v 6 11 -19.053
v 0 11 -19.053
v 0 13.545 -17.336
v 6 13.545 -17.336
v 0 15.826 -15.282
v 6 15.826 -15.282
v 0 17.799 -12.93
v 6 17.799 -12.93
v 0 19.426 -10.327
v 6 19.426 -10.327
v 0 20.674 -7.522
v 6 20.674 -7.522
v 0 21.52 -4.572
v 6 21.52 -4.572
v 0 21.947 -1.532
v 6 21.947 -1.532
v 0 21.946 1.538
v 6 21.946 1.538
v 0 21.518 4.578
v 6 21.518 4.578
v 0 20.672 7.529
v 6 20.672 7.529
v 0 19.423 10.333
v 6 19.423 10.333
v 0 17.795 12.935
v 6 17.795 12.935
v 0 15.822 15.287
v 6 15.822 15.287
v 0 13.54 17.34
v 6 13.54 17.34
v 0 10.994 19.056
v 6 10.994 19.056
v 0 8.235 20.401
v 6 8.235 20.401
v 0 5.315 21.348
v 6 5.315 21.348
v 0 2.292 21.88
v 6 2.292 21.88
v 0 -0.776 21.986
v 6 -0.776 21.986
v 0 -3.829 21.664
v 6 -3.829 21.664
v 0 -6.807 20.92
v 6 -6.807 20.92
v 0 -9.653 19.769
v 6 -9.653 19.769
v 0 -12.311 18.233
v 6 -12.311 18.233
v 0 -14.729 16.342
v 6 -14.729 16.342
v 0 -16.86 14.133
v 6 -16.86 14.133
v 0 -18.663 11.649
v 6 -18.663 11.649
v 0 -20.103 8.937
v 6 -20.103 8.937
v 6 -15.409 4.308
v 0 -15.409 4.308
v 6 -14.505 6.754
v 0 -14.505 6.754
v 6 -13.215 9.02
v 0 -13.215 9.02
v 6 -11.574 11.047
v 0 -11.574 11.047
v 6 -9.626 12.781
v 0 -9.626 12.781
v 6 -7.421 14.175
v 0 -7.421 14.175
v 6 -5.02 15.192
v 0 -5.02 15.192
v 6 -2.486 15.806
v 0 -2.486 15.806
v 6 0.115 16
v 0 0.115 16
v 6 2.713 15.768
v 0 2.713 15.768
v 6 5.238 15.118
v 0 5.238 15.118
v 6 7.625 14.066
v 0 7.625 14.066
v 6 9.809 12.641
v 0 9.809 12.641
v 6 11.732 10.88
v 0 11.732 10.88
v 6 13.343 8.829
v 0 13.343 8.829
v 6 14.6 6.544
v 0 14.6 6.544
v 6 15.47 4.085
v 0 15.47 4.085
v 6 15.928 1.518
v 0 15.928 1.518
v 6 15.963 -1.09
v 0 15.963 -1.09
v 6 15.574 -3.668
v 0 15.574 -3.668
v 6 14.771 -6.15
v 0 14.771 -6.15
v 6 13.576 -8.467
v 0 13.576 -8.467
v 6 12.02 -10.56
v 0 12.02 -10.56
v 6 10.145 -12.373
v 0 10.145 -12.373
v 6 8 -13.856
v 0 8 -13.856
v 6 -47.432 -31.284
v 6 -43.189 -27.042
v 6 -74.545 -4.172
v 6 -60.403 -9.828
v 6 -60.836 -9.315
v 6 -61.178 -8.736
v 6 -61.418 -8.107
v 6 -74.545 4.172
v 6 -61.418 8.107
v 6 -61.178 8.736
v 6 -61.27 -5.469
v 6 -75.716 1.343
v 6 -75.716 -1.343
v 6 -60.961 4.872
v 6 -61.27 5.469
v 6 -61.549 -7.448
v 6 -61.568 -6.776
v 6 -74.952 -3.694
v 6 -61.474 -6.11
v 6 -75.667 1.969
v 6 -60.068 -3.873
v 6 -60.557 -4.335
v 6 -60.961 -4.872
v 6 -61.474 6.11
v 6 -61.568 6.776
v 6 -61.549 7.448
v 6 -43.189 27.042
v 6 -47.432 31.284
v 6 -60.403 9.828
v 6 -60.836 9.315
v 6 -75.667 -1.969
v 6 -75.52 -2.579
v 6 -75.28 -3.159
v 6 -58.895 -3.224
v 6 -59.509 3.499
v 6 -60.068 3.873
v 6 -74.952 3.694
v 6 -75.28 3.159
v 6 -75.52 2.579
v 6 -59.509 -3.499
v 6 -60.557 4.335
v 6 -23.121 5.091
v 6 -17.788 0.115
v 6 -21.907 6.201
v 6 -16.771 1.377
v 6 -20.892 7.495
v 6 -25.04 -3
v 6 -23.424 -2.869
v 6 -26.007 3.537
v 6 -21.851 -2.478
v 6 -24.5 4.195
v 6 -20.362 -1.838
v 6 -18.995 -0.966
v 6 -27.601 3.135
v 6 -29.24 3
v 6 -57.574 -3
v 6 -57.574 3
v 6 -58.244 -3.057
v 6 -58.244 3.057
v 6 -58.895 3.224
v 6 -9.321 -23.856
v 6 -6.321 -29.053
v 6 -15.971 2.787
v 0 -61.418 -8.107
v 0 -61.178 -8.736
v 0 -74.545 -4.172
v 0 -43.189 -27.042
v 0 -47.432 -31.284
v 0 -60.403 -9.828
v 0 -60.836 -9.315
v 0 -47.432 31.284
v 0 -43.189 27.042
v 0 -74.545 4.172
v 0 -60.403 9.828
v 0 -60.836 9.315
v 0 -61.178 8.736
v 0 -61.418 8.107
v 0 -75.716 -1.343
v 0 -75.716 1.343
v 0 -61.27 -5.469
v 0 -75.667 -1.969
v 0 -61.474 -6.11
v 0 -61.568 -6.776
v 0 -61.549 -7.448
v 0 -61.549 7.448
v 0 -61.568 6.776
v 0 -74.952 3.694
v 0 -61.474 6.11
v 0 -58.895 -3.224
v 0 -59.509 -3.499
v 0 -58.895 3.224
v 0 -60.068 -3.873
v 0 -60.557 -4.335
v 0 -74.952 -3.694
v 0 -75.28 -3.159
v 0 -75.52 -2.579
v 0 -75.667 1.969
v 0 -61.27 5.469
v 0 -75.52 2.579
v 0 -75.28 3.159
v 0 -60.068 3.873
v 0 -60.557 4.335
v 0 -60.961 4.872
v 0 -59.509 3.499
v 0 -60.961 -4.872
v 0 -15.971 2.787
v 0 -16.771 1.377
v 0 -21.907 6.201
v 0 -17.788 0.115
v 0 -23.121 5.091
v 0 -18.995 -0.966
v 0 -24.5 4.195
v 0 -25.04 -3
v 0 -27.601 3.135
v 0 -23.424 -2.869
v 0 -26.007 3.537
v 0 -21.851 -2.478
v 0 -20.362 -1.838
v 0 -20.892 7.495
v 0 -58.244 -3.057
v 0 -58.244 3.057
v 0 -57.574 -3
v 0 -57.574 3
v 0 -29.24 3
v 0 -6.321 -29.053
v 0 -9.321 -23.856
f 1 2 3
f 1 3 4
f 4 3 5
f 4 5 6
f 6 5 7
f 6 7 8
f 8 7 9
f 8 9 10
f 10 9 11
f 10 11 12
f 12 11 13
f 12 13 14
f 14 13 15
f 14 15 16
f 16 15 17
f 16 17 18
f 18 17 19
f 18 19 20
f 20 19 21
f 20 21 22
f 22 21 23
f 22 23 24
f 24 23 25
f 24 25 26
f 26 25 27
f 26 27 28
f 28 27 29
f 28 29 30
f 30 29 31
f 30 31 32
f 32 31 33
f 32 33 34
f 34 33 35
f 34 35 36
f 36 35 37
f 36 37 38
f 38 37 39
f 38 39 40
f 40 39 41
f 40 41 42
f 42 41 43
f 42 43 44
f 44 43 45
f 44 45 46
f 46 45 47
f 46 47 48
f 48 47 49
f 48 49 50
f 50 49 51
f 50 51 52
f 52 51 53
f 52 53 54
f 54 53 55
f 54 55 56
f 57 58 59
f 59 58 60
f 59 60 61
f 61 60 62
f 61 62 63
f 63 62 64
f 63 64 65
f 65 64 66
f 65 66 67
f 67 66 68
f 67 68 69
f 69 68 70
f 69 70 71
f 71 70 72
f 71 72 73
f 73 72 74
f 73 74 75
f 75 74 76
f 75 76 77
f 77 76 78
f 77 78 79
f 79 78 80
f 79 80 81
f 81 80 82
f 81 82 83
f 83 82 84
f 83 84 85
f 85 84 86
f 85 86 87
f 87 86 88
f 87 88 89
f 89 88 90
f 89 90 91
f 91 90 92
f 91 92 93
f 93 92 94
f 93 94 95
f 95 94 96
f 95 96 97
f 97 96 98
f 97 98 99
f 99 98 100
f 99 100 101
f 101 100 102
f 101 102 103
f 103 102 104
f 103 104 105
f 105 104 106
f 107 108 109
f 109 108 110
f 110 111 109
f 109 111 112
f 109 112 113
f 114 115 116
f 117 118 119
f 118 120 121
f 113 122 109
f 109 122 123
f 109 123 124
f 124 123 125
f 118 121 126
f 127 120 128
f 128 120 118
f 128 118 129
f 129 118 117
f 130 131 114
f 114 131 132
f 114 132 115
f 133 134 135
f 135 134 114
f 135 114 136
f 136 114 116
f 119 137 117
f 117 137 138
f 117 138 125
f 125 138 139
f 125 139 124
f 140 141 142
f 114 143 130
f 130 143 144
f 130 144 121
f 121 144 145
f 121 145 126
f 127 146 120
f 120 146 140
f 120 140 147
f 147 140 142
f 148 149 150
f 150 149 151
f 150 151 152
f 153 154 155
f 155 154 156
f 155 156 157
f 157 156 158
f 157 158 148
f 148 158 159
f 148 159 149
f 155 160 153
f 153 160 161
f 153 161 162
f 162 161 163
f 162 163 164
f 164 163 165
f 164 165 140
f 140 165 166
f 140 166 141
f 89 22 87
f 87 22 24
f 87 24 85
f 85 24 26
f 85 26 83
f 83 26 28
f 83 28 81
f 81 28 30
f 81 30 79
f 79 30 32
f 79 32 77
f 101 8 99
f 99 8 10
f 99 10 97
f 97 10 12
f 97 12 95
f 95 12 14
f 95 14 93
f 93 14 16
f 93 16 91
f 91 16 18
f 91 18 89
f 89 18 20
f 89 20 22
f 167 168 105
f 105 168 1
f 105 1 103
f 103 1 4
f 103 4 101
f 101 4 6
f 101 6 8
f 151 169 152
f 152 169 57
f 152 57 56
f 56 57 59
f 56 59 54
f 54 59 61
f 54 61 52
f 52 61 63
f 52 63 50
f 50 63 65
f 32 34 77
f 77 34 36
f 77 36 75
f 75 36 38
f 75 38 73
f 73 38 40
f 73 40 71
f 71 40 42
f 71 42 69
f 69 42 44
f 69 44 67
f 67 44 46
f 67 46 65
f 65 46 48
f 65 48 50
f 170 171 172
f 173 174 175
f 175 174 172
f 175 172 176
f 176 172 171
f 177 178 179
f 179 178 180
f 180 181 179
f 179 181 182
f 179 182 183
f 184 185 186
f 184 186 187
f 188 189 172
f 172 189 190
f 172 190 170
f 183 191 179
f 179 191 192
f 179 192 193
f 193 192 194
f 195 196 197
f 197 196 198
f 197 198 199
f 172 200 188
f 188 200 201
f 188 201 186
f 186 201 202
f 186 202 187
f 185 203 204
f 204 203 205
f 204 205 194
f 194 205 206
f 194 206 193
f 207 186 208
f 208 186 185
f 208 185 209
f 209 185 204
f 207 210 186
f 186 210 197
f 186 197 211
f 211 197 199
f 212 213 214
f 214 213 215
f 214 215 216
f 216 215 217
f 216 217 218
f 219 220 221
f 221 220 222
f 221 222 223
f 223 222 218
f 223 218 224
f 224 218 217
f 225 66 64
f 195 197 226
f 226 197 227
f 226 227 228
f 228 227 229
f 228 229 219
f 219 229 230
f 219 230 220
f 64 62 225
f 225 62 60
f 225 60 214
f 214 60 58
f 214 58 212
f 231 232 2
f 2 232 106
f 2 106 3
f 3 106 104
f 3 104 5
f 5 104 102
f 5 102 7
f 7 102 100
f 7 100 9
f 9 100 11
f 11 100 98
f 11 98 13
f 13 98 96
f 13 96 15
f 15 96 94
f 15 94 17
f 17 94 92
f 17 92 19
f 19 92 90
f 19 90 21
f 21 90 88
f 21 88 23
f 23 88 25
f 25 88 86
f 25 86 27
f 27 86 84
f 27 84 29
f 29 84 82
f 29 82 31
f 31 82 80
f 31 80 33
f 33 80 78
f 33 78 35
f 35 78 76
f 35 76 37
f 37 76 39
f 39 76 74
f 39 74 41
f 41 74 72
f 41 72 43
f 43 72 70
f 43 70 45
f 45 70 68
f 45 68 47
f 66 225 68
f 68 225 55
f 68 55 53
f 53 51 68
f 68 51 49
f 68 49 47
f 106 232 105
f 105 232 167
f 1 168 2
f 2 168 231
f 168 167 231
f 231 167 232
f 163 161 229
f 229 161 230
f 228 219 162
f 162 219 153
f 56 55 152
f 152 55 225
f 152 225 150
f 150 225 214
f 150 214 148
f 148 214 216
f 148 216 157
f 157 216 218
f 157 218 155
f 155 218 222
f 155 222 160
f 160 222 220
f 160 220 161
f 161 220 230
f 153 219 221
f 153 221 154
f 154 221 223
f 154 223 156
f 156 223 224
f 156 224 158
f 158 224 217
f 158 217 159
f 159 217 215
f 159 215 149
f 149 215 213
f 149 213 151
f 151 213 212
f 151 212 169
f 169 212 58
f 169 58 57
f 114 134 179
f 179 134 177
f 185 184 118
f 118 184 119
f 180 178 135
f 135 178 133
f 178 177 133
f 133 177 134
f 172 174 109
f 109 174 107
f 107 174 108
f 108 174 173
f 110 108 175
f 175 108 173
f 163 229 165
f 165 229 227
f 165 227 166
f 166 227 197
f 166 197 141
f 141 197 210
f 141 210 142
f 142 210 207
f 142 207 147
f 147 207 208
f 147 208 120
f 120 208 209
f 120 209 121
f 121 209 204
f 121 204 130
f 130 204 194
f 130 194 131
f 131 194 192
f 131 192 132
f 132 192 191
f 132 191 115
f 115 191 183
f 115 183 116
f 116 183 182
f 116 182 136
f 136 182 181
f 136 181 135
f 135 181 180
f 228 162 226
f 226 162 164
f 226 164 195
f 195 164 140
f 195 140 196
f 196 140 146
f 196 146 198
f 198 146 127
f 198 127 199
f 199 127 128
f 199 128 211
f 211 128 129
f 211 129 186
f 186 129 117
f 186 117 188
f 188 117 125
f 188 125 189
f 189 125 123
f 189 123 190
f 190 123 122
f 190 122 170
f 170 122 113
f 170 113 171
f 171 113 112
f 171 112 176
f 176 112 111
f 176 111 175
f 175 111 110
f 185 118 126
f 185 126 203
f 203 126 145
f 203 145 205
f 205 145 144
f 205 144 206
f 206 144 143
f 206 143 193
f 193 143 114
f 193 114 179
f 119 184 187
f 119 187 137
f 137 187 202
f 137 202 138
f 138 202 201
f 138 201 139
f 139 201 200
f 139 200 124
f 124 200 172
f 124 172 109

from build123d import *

# Parameters (mm, degrees)
SKETCH1_R           = 22
SKETCH1_R_2         = 16
BOSS_EXTRUDE1_DEPTH = 6
BOSS_EXTRUDE2_DEPTH = 6
CUT_EXTRUDE1_DEPTH  = 37.933063475
SKETCH4_W           = 6
SKETCH4_H           = 30
BOSS_EXTRUDE3_DEPTH = 6
CUT_EXTRUDE2_DEPTH  = 55.497937543
FILLET1_R           = 10
FILLET2_R           = 10
SKETCH6_W           = 6
SKETCH6_H           = 30
BOSS_EXTRUDE4_DEPTH = 6
FILLET3_R           = 4


with BuildPart() as part:
    # Sketch1 → Boss-Extrude1 (new body)
    with BuildSketch(Plane(origin=(0, 0, 0), x_dir=(0, 0, -1), z_dir=(1, 0, 0))):
        Circle(SKETCH1_R)
        Circle(SKETCH1_R_2, mode=Mode.SUBTRACT)
    extrude(amount=BOSS_EXTRUDE1_DEPTH)

    # Sketch2 → Boss-Extrude2 (add)
    with BuildSketch(Plane(origin=(6, 0, 0), x_dir=(0, 0, -1), z_dir=(1, 0, 0))):
        Polygon((19.052558883, 11), (29.052558883, -6.320508076), (23.856406461, -9.320508076), (13.856406461, 8), align=None)
    extrude(amount=-BOSS_EXTRUDE2_DEPTH)

    # Sketch3 → Cut-Extrude1 (cut, through all)
    with BuildSketch(Plane(origin=(6, 0, 0), x_dir=(0, 0, -1), z_dir=(1, 0, 0))):
        with BuildLine():
            ThreePointArc((16, 0), (12.693653445, -9.740182864), (4.141104722, -15.454813221))
            Line((4.141104722, -15.454813221), (5.694018992, -21.250368178))
            ThreePointArc((5.694018992, -21.250368178), (15.779826764, -15.329614062), (21.406240896, -5.076696831))
            Line((21.406240896, -5.076696831), (13.856406461, 8))
            ThreePointArc((13.856406461, 8), (15.454813221, 4.141104722), (16, 0))
        make_face()
    extrude(amount=-CUT_EXTRUDE1_DEPTH, mode=Mode.SUBTRACT)

    # Sketch4 → Boss-Extrude3 (add)
    with BuildSketch(Plane(origin=(6, 0, 0), x_dir=(0, 0, -1), z_dir=(1, 0, 0))):
        with Locations((0, -30.716233646)):
            Rectangle(SKETCH4_W, SKETCH4_H)
    extrude(amount=-BOSS_EXTRUDE3_DEPTH)

    # Sketch5 → Cut-Extrude2 (cut, through all)
    with BuildSketch(Plane(origin=(6, 0, 0), x_dir=(0, 0, -1), z_dir=(1, 0, 0))):
        with BuildLine():
            Line((3, -21.794494718), (3, -15.716233646))
            Line((3, -15.716233646), (4.141104722, -15.454813221))
            Line((4.141104722, -15.454813221), (5.694018992, -21.250368178))
            ThreePointArc((5.694018992, -21.250368178), (4.374209957, -21.657103353), (3, -21.794494718))
        make_face()
    extrude(amount=-CUT_EXTRUDE2_DEPTH, mode=Mode.SUBTRACT)

    # Fillet1
    # the kernel refuses this fillet: 10 mm, written as the material it adds along each edge
    with BuildSketch(Plane(origin=(6, -21.794494718, 3), x_dir=(0, -1, 0), z_dir=(-1, 0, 0))) as fillet1_piece_1:
        with BuildLine():
            CenterArc((7.445888317, 10), FILLET1_R, 203.969482318, 66.030517682)
            ThreePointArc((-1.691731382, 5.9375), (-0.636552127, 3.028388286), (0, 0))
            Line((0, 0), (7.445888317, 0))
        make_face()
    extrude(amount=6)
    # the kernel refuses this fillet: 10 mm, written as the material it takes off along each edge
    with BuildSketch(Plane(origin=(28.912878475, -15.716233646, -3), x_dir=(0, -1, 0), z_dir=(-1, 0, 0))) as fillet1_2_piece_1:
        with BuildLine():
            CenterArc((9.16515139, 10), FILLET1_R, 203.578178478, 66.421821522)
            Line((0, 6), (0, 0))
            Line((0, 0), (9.16515139, 0))
        make_face()
    extrude(amount=51.82575695, mode=Mode.SUBTRACT)

    # Fillet2
    fillet2_edges = [part.edges().sort_by_distance(p)[0] for p in [
        (3, -15.716233646, 3),
    ]]
    fillet(fillet2_edges, radius=FILLET2_R)

    # Sketch6 → Boss-Extrude4 (add)
    with BuildSketch(Plane.ZY):
        Polygon((27.04163056, -43.189321711), (3, -67.230952271), (3, -75.716233646), (31.284271247, -47.431962398), align=None)
        with Locations((0, -60.716233646)):
            Rectangle(SKETCH6_W, SKETCH6_H)
    boss_extrude4 = extrude(amount=-BOSS_EXTRUDE4_DEPTH)

    # Mirror1: Boss-Extrude4 across plane
    add(boss_extrude4.mirror(Plane.XY))

    # Fillet3
    fillet3_edges = [part.edges().sort_by_distance(p)[0] for p in [
        (3, -75.716233646, 3),
        (3, -75.716233646, -3),
        (3, -67.230952271, 3),
        (3, -67.230952271, -3),
    ]]
    fillet(fillet3_edges, radius=FILLET3_R)


solid = part.part
